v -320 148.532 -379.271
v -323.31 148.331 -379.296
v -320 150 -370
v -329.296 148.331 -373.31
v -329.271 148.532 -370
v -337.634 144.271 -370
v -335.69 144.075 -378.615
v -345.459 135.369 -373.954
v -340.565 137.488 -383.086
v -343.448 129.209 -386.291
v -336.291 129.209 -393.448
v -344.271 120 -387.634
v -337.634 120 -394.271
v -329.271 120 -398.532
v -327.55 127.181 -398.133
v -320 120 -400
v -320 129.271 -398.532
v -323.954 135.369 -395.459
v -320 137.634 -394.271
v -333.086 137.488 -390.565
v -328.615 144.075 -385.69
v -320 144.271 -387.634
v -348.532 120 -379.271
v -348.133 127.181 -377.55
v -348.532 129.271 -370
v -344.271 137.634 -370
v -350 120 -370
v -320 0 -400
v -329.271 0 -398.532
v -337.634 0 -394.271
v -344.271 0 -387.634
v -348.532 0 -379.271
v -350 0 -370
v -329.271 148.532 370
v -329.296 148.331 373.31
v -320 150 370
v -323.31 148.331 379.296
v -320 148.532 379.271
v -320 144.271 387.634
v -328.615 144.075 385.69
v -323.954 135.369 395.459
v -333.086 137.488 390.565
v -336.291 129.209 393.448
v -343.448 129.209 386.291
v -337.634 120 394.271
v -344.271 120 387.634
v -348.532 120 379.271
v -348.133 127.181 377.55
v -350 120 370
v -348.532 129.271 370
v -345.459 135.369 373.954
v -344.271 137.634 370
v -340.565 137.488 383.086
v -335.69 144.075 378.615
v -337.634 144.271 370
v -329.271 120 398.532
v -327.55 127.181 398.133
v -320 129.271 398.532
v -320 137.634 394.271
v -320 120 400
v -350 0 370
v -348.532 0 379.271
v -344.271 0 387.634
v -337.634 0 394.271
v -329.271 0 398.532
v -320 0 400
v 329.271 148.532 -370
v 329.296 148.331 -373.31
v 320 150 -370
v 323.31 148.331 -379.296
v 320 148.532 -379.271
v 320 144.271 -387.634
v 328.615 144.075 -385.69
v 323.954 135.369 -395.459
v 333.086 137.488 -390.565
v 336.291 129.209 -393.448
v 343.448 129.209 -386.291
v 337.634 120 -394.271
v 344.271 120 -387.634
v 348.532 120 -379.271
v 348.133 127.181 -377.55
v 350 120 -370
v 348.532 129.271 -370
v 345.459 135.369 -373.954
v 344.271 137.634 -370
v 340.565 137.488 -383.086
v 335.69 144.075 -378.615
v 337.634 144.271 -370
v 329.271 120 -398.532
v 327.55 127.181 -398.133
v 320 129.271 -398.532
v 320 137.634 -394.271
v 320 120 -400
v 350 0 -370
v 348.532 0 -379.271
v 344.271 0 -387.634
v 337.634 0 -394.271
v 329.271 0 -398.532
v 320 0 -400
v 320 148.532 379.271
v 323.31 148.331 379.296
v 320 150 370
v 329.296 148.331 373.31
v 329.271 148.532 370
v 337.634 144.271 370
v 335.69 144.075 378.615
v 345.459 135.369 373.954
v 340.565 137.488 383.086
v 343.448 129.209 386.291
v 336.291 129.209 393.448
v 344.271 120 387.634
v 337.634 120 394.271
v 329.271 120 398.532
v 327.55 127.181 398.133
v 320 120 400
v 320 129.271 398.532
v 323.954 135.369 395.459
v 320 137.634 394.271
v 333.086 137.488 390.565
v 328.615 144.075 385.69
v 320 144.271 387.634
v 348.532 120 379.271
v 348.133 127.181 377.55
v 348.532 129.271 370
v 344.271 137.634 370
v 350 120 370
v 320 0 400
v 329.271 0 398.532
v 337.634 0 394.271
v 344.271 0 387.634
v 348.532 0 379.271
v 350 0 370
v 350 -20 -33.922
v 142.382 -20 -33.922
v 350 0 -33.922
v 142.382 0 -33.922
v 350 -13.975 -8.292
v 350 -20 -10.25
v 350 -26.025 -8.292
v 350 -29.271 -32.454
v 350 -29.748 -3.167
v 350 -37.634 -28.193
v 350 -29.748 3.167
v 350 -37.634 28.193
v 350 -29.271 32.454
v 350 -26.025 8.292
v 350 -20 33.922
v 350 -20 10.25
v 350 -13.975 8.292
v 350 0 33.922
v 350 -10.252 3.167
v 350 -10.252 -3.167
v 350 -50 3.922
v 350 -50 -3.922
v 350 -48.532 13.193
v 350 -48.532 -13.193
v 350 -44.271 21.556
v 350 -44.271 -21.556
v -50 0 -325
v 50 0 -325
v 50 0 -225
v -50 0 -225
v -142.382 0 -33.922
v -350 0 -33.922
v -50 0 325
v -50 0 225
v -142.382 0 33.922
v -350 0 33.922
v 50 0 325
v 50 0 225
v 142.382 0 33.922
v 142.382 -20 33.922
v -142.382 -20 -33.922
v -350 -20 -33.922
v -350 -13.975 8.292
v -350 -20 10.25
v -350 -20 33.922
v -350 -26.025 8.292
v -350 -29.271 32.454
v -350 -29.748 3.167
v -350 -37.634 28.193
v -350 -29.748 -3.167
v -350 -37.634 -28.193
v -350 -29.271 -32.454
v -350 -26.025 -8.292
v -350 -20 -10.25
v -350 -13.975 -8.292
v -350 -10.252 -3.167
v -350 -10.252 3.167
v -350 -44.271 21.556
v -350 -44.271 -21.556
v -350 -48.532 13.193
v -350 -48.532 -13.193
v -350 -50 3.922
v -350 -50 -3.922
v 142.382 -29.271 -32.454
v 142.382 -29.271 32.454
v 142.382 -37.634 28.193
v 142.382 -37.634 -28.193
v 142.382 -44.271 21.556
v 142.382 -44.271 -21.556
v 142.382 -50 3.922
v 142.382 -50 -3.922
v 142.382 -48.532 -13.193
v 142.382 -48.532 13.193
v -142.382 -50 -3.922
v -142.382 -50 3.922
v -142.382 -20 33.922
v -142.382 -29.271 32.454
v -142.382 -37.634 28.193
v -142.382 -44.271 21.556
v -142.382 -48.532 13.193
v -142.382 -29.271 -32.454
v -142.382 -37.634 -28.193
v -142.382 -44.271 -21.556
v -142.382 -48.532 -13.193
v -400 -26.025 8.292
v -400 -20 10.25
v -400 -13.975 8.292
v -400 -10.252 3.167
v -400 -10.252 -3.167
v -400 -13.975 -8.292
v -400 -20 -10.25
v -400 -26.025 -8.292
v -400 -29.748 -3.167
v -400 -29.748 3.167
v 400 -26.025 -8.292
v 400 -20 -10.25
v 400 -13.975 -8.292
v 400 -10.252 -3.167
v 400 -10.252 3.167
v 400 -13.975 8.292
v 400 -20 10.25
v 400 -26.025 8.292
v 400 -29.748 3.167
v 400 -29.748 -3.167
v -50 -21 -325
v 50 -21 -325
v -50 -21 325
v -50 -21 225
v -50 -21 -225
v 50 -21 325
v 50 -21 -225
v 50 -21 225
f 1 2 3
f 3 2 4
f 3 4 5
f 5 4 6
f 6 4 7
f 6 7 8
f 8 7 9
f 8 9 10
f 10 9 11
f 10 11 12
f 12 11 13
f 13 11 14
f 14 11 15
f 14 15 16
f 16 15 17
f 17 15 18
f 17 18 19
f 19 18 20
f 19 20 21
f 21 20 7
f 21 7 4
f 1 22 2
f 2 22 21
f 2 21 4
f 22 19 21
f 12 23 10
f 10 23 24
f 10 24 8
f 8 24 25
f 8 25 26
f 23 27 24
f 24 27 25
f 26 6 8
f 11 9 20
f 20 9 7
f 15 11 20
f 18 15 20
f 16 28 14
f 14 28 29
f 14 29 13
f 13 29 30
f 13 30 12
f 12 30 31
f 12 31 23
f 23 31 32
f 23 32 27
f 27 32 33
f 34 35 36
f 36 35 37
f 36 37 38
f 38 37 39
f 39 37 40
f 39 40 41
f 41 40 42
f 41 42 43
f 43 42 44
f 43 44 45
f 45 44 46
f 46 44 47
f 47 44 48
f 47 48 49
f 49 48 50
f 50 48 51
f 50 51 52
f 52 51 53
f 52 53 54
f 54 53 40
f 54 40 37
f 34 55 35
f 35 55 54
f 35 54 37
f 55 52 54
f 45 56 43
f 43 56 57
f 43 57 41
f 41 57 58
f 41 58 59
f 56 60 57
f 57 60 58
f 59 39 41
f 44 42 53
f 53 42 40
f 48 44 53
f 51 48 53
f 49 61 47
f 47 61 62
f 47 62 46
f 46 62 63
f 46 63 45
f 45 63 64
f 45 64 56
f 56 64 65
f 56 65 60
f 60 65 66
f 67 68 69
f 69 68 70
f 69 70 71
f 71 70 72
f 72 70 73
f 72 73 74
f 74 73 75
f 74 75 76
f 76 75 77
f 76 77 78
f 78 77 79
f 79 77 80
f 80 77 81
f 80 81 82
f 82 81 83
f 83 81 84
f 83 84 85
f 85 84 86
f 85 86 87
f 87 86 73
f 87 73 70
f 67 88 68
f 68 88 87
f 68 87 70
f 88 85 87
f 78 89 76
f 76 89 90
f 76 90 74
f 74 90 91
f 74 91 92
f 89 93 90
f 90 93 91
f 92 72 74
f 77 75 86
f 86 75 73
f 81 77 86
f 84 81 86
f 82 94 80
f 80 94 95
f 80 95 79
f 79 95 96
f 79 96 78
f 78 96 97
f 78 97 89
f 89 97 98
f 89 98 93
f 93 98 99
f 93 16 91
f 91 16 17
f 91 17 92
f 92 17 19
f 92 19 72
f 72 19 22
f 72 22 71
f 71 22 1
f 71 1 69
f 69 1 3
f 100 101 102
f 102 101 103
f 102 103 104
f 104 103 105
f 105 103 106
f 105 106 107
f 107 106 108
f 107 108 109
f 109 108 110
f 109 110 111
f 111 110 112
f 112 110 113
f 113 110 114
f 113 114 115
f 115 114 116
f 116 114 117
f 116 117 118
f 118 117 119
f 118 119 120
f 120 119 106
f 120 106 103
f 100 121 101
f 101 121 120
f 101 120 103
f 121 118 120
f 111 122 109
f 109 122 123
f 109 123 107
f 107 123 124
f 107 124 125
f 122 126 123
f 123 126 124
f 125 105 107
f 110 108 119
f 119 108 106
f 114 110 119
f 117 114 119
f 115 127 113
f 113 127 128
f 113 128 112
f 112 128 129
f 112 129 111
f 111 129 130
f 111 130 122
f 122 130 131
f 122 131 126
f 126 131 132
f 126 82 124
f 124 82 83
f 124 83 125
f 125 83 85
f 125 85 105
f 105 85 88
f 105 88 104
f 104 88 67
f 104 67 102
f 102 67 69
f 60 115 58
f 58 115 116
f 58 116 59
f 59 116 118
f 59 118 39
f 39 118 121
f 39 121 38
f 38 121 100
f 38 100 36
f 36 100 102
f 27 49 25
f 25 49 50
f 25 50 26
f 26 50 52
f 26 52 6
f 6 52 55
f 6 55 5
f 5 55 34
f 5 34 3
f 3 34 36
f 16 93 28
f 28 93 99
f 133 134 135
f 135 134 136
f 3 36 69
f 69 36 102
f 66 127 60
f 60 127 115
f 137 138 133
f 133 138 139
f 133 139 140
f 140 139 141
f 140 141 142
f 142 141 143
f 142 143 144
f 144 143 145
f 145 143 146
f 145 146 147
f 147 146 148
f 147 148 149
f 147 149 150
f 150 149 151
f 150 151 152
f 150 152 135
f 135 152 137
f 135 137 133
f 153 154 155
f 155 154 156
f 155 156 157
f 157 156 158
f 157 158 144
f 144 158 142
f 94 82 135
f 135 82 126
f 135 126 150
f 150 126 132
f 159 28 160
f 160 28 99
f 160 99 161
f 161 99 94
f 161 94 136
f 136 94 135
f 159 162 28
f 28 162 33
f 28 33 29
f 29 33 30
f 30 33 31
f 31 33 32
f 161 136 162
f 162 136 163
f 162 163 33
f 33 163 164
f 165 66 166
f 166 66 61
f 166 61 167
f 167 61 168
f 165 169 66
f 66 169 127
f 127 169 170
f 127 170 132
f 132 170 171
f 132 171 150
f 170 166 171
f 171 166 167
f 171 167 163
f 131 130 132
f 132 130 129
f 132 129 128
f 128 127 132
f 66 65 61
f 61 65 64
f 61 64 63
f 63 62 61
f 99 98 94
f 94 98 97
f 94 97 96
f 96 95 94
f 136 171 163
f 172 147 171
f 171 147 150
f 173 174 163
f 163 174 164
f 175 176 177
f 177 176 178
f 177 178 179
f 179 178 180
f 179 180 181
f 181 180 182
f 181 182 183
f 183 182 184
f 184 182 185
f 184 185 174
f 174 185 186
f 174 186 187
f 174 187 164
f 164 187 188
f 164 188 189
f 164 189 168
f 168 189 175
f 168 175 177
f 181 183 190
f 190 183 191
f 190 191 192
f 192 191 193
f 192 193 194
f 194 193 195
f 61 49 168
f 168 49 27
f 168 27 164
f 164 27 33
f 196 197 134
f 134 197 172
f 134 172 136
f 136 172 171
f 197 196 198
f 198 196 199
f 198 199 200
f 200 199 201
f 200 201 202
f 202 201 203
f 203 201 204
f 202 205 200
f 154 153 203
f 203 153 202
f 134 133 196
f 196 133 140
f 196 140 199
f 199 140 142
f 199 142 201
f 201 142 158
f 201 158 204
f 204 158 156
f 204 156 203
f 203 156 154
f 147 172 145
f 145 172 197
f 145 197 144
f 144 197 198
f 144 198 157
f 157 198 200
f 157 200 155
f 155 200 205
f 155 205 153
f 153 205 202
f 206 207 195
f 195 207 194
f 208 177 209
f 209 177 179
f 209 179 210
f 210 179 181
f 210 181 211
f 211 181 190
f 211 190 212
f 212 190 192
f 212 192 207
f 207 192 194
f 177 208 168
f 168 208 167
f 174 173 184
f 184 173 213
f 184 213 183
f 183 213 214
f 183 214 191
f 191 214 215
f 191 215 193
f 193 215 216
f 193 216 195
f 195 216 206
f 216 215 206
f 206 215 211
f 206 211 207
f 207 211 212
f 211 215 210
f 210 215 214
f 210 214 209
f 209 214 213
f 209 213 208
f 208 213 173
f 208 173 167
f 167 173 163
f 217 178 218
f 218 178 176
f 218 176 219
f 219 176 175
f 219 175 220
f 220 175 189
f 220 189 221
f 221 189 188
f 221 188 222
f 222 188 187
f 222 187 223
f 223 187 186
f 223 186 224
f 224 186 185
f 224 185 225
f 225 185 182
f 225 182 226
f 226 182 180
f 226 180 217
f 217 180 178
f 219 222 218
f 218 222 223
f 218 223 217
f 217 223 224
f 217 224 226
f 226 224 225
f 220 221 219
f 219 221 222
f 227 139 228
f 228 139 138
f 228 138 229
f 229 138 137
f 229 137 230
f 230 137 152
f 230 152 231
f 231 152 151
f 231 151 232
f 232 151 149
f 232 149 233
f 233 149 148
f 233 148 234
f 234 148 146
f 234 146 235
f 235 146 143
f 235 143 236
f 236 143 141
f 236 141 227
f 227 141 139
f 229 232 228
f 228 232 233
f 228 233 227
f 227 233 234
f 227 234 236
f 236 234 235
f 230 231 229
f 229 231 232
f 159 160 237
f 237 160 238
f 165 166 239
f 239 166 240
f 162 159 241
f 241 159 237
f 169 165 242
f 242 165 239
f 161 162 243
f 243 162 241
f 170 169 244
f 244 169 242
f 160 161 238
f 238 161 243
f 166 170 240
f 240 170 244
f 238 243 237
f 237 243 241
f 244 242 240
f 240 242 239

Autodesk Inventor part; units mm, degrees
ref_plane "YZ Plane" through (0, 0, 0) normal (1, 0, 0) x (0, 1, 0)
ref_plane "XZ Plane" through (0, 0, 0) normal (0, 1, 0) x (-1, 0, 0)
ref_plane "XY Plane" through (0, 0, 0) normal (0, 0, 1) x (1, 0, 0)
sketch "Boceto1" plane through (0, 0, 0) normal (0, 1, 0) x (-1, 0, 0)
  line L0 (-350, 400) -> (350, 400)
  line L1 (350, 400) -> (350, -400)
  line L2 (350, -400) -> (-350, -400)
  line L3 (-350, -400) -> (-350, 400)
  line L4 (-350, 400) -> (350, -400) construction
  line L5 (350, 400) -> (-350, -400) construction
  point P0 (0, 0)
  dimension "d0" = 700
  dimension "d1" = 800
extrude "Extrusión1" add sketch "Boceto1" along normal blind 150
fillet "Empalme1" radius 30 8 edges at (350, 150, 0) (0, 150, -400) (0, 150, 400) (-350, 150, 0) (-350, 75, 400) (350, 75, 400) (350, 75, -400) (-350, 75, -400)
sketch "Boceto2" plane through (0, 0, 0) normal (0, -1, 0) x (1, 0, 0)
  line L0 (-350, -370) -> (-350, 370) projected
  line L1 (-142.3817, -33.9222) -> (-350, -33.9222)
  line L2 (-350, -33.9222) -> (-350, 33.9222)
  line L3 (-350, 33.9222) -> (-142.3817, 33.9222)
  line L4 (-142.3817, 33.9222) -> (-142.3817, -33.9222)
  line L5 (-142.3817, -33.9222) -> (-350, 33.9222) construction
  line L6 (-350, -33.9222) -> (-142.3817, 33.9222) construction
  line L7 (0, 160.6517) -> (0, -134.4555)
  line L8 (142.3817, -33.9222) -> (350, -33.9222)
  line L9 (350, -33.9222) -> (350, 33.9222)
  line L10 (350, 33.9222) -> (142.3817, 33.9222)
  line L11 (142.3817, 33.9222) -> (142.3817, -33.9222)
  line L12 (142.3817, -33.9222) -> (350, 33.9222) construction
  line L13 (350, -33.9222) -> (142.3817, 33.9222) construction
  point P0 (0, 0)
  point P1 (-246.1908, 0)
  point P2 (246.1908, 0)
extrude "Extrusión2" add sketch "Boceto2" along normal blind 50
fillet "Empalme2" radius 30 4 edges at (-246.1908, -50, 33.9222) (-246.1908, -50, -33.9222) (246.1908, -50, 33.9222) (246.1908, -50, -33.9222)
sketch "Boceto3" plane through (-350, 0, 370) normal (-1, 0, 0) x (0, 0, 1)
  circle A0 centre (-370, -20) radius 10.25
  point P0 (-370, 0)
  dimension "d8" = 20.5
extrude "Extrusión3" add sketch "Boceto3" along normal blind 50
sketch "Boceto4" plane through (350, 0, -370) normal (1, 0, 0) x (0, 0, -1)
  circle A0 centre (-370, -20) radius 10.25 projected
  circle A1 centre (-370, -20) radius 10.25
  point P0 (-370, 0)
extrude "Extrusión4" add sketch "Boceto4" along normal blind 50
sketch "Boceto5" plane through (0, 0, 0) normal (0, -1, 0) x (1, 0, 0)
  line L0 (-50, 325) -> (50, 325)
  line L1 (50, 325) -> (50, 225)
  line L2 (50, 225) -> (-50, 225)
  line L3 (-50, 225) -> (-50, 325)
  line L4 (-50, 325) -> (50, 225) construction
  line L5 (50, 325) -> (-50, 225) construction
  line L6 (-320, 400) -> (320, 400) projected
  line L7 (123.2582, 0) -> (-96.8001, 0)
  line L8 (-50, -325) -> (50, -325)
  line L9 (50, -325) -> (50, -225)
  line L10 (50, -225) -> (-50, -225)
  line L11 (-50, -225) -> (-50, -325)
  line L12 (-50, -325) -> (50, -225) construction
  line L13 (50, -325) -> (-50, -225) construction
  point P0 (0, 0)
  point P1 (0, 275)
  point P2 (0, -275)
  dimension "d13" = 100
  dimension "d14" = 100
  dimension "d15" = 75
extrude "Extrusión5" add sketch "Boceto5" along normal blind 21
properties part number "base_link"
